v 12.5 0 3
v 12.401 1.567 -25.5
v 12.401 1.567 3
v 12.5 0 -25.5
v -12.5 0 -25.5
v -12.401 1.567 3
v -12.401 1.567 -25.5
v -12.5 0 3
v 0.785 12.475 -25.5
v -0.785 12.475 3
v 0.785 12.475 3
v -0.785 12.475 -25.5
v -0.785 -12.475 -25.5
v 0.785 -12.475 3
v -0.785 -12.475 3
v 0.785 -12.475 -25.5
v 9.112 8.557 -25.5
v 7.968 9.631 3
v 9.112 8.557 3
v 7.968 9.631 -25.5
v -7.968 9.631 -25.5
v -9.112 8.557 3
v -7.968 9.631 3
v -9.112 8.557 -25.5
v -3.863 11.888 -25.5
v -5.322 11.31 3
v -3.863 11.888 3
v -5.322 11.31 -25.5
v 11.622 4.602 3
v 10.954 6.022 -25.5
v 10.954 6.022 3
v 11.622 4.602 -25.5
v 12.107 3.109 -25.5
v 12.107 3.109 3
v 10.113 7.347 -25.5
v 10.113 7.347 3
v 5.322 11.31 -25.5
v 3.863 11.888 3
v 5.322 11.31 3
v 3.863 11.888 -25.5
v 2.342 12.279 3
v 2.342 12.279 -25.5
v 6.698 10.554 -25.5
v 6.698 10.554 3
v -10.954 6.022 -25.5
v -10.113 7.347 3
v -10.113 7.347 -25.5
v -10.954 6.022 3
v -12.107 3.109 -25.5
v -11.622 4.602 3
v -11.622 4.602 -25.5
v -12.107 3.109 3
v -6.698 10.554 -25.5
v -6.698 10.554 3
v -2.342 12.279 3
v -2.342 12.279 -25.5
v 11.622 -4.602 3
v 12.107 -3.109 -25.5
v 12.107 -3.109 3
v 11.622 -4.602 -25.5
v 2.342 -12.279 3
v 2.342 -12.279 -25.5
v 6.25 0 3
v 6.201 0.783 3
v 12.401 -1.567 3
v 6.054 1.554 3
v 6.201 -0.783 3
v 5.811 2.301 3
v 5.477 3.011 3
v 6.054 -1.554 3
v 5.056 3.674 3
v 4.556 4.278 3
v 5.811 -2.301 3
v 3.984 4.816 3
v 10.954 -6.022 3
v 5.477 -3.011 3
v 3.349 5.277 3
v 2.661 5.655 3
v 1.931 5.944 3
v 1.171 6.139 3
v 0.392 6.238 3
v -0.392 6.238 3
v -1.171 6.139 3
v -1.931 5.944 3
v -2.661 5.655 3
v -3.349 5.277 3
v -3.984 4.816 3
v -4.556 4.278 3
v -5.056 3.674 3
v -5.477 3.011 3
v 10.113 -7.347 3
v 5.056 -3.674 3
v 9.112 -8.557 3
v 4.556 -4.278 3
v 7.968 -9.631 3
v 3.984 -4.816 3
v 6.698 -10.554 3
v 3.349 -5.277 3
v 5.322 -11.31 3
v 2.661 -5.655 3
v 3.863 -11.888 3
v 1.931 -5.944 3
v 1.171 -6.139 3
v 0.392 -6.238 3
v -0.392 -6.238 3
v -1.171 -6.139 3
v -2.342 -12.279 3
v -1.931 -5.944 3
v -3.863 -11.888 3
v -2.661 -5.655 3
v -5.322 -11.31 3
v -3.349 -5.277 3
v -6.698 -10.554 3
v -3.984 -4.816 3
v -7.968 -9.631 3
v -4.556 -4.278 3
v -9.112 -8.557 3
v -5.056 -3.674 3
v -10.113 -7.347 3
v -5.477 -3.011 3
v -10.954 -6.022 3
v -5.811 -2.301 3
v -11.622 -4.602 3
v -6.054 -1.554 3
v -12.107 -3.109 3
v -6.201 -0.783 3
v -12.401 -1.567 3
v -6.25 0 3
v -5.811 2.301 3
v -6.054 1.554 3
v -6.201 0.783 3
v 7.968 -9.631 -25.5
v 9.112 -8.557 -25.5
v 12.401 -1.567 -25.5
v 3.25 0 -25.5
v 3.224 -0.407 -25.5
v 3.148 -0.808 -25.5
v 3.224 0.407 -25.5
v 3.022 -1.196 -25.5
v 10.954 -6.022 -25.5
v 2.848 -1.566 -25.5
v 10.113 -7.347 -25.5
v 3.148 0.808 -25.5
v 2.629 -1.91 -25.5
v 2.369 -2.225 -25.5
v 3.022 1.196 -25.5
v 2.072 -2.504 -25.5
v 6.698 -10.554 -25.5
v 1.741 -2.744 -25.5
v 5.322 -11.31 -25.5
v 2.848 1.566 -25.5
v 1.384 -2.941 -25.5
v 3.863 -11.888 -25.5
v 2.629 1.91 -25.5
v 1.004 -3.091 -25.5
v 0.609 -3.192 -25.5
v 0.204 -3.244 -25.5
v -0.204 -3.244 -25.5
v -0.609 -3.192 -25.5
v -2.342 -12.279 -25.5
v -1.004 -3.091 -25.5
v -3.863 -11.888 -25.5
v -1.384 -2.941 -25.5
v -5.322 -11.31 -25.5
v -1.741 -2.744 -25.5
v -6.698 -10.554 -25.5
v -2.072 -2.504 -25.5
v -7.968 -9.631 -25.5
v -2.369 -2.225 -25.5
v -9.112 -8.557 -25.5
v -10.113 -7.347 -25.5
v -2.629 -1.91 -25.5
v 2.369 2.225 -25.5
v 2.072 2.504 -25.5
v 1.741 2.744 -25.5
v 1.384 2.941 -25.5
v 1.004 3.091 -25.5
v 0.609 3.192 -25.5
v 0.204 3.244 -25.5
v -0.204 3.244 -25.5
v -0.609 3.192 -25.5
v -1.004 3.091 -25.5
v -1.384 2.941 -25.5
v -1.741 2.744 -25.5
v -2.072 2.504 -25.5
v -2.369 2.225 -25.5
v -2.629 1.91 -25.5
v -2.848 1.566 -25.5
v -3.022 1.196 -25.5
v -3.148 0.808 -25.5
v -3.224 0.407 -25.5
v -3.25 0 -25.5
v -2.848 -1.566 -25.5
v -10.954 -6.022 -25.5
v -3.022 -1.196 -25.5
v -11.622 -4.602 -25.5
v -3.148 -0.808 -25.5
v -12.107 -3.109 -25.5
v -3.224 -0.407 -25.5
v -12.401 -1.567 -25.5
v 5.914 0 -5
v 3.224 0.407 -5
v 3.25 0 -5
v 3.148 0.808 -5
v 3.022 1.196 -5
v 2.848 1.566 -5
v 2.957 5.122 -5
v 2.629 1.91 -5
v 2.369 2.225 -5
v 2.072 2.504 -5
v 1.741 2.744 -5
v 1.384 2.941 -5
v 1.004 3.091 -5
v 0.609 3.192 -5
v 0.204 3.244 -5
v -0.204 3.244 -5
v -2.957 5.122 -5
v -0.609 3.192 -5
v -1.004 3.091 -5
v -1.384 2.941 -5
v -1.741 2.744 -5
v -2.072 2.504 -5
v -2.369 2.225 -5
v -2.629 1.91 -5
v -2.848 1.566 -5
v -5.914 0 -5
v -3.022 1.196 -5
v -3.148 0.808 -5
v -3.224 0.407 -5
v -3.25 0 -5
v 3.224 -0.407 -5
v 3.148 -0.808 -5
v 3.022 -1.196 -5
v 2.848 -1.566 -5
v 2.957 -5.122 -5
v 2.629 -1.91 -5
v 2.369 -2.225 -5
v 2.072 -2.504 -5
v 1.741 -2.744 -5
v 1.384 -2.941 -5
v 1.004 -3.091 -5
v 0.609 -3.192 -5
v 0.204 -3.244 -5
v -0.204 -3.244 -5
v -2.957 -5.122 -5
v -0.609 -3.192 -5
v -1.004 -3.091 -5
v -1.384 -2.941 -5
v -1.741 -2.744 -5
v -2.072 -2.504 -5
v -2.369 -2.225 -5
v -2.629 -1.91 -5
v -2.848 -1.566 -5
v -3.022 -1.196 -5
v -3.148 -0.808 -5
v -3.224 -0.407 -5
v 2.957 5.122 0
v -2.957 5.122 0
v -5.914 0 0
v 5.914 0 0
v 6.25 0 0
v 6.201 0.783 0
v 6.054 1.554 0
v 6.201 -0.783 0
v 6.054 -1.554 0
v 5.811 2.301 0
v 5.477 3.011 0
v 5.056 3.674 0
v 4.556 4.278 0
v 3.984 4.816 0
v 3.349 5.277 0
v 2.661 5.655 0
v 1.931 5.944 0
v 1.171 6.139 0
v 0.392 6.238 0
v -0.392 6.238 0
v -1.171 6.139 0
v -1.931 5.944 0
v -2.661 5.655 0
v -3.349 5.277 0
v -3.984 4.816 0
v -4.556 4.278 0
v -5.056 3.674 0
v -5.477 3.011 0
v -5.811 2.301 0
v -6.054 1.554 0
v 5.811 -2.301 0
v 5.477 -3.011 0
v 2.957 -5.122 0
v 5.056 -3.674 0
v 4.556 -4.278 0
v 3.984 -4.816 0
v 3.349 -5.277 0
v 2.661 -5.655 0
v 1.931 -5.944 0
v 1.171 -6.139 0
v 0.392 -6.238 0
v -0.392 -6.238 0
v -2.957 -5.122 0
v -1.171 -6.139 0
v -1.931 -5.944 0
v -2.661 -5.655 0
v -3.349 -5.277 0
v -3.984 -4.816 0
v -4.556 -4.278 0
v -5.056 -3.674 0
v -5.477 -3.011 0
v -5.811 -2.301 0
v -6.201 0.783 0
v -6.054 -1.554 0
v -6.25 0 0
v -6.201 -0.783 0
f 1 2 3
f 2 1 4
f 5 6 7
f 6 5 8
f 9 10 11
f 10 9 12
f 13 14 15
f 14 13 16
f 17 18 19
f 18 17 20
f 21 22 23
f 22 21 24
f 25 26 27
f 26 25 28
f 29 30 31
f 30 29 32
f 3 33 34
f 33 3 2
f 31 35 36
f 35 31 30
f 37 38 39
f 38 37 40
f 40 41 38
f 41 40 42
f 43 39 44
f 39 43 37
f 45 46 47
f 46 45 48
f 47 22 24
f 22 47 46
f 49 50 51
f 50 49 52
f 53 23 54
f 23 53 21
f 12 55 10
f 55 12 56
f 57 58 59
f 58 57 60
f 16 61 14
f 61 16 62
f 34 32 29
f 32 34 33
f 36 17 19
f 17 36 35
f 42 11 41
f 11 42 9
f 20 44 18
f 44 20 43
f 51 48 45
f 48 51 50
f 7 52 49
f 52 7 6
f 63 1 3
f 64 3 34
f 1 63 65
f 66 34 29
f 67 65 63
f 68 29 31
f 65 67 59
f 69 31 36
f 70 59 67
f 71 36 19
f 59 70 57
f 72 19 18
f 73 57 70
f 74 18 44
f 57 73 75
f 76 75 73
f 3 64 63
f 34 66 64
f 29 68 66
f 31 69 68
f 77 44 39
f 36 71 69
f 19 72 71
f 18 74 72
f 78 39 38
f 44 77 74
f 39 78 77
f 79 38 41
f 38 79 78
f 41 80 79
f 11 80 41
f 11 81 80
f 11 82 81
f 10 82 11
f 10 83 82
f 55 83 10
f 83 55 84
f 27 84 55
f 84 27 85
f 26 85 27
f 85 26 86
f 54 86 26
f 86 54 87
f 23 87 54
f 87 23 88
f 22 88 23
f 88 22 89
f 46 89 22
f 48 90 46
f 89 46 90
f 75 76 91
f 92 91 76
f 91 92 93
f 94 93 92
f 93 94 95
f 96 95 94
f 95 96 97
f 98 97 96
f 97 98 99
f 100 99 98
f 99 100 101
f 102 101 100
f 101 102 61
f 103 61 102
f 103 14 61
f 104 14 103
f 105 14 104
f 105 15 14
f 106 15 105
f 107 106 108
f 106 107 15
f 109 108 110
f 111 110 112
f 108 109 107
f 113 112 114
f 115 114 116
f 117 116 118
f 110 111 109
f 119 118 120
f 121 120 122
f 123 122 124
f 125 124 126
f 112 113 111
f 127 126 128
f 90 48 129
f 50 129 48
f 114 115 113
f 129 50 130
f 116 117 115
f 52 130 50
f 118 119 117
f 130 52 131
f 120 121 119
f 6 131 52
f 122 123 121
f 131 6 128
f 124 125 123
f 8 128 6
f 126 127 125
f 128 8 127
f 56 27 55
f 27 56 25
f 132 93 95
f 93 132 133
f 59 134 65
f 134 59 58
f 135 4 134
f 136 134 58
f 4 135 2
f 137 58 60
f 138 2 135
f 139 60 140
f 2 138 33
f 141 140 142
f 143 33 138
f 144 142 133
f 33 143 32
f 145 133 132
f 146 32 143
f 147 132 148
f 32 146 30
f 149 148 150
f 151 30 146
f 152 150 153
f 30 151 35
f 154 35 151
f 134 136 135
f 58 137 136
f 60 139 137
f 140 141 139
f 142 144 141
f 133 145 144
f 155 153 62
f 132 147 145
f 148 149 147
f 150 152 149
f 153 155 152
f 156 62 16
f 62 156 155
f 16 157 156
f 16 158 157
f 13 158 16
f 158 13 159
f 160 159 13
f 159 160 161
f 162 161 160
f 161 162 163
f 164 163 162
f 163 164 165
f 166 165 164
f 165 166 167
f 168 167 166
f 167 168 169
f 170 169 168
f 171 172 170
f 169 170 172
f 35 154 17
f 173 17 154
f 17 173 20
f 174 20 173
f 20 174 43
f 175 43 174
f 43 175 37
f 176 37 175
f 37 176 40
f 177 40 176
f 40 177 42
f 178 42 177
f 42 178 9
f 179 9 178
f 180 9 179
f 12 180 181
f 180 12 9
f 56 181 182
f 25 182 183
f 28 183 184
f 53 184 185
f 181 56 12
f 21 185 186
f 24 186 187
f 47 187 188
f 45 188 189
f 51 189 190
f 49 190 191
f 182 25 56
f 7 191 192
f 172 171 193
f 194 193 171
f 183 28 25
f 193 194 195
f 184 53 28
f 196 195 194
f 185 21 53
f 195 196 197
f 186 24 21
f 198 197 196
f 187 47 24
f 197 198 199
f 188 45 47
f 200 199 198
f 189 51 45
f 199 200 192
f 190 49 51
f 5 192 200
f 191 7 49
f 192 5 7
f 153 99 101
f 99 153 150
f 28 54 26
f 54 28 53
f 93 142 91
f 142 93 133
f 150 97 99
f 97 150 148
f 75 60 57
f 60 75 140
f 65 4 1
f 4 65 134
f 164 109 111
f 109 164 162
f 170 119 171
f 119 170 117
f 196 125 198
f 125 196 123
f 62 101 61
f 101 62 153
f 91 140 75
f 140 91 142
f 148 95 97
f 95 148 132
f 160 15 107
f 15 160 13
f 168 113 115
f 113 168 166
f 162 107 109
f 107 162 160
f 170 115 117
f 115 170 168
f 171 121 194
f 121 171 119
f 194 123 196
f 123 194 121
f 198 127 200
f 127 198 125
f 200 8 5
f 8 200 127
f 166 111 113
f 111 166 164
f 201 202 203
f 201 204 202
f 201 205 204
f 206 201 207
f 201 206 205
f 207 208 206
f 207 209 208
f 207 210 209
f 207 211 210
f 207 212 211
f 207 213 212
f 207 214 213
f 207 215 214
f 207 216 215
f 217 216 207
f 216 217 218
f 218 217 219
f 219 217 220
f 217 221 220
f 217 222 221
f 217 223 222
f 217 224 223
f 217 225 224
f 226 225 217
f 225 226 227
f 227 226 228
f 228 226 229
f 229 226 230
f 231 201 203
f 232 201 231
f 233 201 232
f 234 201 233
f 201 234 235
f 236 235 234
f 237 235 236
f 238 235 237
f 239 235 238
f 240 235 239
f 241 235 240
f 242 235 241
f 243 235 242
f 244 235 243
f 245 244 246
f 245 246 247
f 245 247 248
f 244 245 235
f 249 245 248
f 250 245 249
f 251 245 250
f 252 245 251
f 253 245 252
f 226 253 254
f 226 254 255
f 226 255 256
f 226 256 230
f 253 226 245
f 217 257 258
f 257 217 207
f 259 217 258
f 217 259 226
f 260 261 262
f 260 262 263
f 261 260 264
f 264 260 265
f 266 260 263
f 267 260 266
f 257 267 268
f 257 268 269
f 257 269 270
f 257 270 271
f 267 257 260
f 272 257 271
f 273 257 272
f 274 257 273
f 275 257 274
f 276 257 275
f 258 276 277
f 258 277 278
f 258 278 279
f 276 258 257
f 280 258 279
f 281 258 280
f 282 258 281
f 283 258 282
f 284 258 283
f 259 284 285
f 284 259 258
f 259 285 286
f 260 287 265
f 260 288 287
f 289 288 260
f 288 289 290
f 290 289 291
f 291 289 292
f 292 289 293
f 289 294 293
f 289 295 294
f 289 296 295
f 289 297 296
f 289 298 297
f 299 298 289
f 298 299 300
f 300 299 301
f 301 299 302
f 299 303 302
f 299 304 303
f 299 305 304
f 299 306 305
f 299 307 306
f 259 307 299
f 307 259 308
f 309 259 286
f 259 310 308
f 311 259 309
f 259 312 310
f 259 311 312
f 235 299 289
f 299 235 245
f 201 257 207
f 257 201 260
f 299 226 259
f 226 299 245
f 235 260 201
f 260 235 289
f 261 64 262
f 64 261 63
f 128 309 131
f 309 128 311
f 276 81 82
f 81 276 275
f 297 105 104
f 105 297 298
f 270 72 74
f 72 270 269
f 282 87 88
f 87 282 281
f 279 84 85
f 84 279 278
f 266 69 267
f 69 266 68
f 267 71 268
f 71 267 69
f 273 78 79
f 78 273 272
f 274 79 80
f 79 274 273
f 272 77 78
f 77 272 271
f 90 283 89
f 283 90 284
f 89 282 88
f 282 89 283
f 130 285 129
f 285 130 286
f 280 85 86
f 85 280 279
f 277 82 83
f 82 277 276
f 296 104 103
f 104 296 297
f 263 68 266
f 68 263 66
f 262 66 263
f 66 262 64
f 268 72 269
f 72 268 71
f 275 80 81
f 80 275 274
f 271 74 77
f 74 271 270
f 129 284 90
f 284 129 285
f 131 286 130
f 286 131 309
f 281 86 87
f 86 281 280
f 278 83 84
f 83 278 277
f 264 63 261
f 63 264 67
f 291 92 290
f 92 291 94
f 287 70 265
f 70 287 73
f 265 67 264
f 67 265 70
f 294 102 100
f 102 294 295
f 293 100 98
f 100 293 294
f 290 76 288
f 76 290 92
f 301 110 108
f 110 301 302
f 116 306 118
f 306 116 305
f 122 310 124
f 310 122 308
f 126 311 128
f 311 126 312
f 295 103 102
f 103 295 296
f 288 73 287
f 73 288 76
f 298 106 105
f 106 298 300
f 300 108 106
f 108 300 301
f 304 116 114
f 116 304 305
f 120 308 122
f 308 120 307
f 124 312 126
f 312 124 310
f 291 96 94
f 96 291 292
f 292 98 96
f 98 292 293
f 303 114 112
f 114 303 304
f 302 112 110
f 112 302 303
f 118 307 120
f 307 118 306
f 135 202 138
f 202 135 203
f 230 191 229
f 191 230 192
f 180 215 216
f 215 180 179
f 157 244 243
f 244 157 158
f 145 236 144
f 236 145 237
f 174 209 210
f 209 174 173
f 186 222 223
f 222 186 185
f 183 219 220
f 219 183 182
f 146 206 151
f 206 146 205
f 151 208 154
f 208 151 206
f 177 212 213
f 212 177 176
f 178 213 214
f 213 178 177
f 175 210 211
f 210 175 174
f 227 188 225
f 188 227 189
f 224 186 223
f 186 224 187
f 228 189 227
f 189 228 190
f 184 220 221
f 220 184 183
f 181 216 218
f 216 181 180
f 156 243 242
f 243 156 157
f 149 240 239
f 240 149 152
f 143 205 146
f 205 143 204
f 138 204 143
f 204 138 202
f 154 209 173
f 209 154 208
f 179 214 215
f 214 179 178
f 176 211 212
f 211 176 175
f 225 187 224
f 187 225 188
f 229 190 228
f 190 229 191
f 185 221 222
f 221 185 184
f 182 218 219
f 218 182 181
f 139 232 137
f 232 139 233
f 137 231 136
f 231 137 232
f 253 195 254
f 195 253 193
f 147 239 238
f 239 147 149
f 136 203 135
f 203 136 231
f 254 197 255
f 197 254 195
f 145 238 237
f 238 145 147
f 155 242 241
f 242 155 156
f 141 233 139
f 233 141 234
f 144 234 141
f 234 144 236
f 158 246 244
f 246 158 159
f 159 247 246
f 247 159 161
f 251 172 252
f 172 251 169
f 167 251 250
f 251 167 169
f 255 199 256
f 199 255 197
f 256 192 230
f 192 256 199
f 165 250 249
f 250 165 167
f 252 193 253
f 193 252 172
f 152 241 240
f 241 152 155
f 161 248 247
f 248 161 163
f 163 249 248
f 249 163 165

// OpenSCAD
$fn = 50;


difference() {
	union() {
		translate(v = [0, 0, -25.5000000000]) {
			cylinder(h = 28.5000000000, r = 12.5000000000);
		}
		#translate(v = [0, 0, -27.0000000000]) {
			cylinder(h = 27, r = 2.8750000000);
		}
	}
	union() {
		translate(v = [0, 0, 0]) {
			rotate(a = [0, 0, 0]) {
				difference() {
					union() {
						translate(v = [0, 0, -5]) {
							linear_extrude(height = 5) {
								polygon(points = [[5.9142500000, 0.0000000000], [2.9571250000, 5.1218907443], [-2.9571250000, 5.1218907443], [-5.9142500000, 0.0000000000], [-2.9571250000, -5.1218907443], [2.9571250000, -5.1218907443]]);
							}
						}
					}
					union();
				}
			}
		}
		#cylinder(h = 3, r = 6.2500000000);
		#translate(v = [0, 0, -100.0000000000]) {
			cylinder(h = 200, r = 3.2500000000);
		}
	}
}
